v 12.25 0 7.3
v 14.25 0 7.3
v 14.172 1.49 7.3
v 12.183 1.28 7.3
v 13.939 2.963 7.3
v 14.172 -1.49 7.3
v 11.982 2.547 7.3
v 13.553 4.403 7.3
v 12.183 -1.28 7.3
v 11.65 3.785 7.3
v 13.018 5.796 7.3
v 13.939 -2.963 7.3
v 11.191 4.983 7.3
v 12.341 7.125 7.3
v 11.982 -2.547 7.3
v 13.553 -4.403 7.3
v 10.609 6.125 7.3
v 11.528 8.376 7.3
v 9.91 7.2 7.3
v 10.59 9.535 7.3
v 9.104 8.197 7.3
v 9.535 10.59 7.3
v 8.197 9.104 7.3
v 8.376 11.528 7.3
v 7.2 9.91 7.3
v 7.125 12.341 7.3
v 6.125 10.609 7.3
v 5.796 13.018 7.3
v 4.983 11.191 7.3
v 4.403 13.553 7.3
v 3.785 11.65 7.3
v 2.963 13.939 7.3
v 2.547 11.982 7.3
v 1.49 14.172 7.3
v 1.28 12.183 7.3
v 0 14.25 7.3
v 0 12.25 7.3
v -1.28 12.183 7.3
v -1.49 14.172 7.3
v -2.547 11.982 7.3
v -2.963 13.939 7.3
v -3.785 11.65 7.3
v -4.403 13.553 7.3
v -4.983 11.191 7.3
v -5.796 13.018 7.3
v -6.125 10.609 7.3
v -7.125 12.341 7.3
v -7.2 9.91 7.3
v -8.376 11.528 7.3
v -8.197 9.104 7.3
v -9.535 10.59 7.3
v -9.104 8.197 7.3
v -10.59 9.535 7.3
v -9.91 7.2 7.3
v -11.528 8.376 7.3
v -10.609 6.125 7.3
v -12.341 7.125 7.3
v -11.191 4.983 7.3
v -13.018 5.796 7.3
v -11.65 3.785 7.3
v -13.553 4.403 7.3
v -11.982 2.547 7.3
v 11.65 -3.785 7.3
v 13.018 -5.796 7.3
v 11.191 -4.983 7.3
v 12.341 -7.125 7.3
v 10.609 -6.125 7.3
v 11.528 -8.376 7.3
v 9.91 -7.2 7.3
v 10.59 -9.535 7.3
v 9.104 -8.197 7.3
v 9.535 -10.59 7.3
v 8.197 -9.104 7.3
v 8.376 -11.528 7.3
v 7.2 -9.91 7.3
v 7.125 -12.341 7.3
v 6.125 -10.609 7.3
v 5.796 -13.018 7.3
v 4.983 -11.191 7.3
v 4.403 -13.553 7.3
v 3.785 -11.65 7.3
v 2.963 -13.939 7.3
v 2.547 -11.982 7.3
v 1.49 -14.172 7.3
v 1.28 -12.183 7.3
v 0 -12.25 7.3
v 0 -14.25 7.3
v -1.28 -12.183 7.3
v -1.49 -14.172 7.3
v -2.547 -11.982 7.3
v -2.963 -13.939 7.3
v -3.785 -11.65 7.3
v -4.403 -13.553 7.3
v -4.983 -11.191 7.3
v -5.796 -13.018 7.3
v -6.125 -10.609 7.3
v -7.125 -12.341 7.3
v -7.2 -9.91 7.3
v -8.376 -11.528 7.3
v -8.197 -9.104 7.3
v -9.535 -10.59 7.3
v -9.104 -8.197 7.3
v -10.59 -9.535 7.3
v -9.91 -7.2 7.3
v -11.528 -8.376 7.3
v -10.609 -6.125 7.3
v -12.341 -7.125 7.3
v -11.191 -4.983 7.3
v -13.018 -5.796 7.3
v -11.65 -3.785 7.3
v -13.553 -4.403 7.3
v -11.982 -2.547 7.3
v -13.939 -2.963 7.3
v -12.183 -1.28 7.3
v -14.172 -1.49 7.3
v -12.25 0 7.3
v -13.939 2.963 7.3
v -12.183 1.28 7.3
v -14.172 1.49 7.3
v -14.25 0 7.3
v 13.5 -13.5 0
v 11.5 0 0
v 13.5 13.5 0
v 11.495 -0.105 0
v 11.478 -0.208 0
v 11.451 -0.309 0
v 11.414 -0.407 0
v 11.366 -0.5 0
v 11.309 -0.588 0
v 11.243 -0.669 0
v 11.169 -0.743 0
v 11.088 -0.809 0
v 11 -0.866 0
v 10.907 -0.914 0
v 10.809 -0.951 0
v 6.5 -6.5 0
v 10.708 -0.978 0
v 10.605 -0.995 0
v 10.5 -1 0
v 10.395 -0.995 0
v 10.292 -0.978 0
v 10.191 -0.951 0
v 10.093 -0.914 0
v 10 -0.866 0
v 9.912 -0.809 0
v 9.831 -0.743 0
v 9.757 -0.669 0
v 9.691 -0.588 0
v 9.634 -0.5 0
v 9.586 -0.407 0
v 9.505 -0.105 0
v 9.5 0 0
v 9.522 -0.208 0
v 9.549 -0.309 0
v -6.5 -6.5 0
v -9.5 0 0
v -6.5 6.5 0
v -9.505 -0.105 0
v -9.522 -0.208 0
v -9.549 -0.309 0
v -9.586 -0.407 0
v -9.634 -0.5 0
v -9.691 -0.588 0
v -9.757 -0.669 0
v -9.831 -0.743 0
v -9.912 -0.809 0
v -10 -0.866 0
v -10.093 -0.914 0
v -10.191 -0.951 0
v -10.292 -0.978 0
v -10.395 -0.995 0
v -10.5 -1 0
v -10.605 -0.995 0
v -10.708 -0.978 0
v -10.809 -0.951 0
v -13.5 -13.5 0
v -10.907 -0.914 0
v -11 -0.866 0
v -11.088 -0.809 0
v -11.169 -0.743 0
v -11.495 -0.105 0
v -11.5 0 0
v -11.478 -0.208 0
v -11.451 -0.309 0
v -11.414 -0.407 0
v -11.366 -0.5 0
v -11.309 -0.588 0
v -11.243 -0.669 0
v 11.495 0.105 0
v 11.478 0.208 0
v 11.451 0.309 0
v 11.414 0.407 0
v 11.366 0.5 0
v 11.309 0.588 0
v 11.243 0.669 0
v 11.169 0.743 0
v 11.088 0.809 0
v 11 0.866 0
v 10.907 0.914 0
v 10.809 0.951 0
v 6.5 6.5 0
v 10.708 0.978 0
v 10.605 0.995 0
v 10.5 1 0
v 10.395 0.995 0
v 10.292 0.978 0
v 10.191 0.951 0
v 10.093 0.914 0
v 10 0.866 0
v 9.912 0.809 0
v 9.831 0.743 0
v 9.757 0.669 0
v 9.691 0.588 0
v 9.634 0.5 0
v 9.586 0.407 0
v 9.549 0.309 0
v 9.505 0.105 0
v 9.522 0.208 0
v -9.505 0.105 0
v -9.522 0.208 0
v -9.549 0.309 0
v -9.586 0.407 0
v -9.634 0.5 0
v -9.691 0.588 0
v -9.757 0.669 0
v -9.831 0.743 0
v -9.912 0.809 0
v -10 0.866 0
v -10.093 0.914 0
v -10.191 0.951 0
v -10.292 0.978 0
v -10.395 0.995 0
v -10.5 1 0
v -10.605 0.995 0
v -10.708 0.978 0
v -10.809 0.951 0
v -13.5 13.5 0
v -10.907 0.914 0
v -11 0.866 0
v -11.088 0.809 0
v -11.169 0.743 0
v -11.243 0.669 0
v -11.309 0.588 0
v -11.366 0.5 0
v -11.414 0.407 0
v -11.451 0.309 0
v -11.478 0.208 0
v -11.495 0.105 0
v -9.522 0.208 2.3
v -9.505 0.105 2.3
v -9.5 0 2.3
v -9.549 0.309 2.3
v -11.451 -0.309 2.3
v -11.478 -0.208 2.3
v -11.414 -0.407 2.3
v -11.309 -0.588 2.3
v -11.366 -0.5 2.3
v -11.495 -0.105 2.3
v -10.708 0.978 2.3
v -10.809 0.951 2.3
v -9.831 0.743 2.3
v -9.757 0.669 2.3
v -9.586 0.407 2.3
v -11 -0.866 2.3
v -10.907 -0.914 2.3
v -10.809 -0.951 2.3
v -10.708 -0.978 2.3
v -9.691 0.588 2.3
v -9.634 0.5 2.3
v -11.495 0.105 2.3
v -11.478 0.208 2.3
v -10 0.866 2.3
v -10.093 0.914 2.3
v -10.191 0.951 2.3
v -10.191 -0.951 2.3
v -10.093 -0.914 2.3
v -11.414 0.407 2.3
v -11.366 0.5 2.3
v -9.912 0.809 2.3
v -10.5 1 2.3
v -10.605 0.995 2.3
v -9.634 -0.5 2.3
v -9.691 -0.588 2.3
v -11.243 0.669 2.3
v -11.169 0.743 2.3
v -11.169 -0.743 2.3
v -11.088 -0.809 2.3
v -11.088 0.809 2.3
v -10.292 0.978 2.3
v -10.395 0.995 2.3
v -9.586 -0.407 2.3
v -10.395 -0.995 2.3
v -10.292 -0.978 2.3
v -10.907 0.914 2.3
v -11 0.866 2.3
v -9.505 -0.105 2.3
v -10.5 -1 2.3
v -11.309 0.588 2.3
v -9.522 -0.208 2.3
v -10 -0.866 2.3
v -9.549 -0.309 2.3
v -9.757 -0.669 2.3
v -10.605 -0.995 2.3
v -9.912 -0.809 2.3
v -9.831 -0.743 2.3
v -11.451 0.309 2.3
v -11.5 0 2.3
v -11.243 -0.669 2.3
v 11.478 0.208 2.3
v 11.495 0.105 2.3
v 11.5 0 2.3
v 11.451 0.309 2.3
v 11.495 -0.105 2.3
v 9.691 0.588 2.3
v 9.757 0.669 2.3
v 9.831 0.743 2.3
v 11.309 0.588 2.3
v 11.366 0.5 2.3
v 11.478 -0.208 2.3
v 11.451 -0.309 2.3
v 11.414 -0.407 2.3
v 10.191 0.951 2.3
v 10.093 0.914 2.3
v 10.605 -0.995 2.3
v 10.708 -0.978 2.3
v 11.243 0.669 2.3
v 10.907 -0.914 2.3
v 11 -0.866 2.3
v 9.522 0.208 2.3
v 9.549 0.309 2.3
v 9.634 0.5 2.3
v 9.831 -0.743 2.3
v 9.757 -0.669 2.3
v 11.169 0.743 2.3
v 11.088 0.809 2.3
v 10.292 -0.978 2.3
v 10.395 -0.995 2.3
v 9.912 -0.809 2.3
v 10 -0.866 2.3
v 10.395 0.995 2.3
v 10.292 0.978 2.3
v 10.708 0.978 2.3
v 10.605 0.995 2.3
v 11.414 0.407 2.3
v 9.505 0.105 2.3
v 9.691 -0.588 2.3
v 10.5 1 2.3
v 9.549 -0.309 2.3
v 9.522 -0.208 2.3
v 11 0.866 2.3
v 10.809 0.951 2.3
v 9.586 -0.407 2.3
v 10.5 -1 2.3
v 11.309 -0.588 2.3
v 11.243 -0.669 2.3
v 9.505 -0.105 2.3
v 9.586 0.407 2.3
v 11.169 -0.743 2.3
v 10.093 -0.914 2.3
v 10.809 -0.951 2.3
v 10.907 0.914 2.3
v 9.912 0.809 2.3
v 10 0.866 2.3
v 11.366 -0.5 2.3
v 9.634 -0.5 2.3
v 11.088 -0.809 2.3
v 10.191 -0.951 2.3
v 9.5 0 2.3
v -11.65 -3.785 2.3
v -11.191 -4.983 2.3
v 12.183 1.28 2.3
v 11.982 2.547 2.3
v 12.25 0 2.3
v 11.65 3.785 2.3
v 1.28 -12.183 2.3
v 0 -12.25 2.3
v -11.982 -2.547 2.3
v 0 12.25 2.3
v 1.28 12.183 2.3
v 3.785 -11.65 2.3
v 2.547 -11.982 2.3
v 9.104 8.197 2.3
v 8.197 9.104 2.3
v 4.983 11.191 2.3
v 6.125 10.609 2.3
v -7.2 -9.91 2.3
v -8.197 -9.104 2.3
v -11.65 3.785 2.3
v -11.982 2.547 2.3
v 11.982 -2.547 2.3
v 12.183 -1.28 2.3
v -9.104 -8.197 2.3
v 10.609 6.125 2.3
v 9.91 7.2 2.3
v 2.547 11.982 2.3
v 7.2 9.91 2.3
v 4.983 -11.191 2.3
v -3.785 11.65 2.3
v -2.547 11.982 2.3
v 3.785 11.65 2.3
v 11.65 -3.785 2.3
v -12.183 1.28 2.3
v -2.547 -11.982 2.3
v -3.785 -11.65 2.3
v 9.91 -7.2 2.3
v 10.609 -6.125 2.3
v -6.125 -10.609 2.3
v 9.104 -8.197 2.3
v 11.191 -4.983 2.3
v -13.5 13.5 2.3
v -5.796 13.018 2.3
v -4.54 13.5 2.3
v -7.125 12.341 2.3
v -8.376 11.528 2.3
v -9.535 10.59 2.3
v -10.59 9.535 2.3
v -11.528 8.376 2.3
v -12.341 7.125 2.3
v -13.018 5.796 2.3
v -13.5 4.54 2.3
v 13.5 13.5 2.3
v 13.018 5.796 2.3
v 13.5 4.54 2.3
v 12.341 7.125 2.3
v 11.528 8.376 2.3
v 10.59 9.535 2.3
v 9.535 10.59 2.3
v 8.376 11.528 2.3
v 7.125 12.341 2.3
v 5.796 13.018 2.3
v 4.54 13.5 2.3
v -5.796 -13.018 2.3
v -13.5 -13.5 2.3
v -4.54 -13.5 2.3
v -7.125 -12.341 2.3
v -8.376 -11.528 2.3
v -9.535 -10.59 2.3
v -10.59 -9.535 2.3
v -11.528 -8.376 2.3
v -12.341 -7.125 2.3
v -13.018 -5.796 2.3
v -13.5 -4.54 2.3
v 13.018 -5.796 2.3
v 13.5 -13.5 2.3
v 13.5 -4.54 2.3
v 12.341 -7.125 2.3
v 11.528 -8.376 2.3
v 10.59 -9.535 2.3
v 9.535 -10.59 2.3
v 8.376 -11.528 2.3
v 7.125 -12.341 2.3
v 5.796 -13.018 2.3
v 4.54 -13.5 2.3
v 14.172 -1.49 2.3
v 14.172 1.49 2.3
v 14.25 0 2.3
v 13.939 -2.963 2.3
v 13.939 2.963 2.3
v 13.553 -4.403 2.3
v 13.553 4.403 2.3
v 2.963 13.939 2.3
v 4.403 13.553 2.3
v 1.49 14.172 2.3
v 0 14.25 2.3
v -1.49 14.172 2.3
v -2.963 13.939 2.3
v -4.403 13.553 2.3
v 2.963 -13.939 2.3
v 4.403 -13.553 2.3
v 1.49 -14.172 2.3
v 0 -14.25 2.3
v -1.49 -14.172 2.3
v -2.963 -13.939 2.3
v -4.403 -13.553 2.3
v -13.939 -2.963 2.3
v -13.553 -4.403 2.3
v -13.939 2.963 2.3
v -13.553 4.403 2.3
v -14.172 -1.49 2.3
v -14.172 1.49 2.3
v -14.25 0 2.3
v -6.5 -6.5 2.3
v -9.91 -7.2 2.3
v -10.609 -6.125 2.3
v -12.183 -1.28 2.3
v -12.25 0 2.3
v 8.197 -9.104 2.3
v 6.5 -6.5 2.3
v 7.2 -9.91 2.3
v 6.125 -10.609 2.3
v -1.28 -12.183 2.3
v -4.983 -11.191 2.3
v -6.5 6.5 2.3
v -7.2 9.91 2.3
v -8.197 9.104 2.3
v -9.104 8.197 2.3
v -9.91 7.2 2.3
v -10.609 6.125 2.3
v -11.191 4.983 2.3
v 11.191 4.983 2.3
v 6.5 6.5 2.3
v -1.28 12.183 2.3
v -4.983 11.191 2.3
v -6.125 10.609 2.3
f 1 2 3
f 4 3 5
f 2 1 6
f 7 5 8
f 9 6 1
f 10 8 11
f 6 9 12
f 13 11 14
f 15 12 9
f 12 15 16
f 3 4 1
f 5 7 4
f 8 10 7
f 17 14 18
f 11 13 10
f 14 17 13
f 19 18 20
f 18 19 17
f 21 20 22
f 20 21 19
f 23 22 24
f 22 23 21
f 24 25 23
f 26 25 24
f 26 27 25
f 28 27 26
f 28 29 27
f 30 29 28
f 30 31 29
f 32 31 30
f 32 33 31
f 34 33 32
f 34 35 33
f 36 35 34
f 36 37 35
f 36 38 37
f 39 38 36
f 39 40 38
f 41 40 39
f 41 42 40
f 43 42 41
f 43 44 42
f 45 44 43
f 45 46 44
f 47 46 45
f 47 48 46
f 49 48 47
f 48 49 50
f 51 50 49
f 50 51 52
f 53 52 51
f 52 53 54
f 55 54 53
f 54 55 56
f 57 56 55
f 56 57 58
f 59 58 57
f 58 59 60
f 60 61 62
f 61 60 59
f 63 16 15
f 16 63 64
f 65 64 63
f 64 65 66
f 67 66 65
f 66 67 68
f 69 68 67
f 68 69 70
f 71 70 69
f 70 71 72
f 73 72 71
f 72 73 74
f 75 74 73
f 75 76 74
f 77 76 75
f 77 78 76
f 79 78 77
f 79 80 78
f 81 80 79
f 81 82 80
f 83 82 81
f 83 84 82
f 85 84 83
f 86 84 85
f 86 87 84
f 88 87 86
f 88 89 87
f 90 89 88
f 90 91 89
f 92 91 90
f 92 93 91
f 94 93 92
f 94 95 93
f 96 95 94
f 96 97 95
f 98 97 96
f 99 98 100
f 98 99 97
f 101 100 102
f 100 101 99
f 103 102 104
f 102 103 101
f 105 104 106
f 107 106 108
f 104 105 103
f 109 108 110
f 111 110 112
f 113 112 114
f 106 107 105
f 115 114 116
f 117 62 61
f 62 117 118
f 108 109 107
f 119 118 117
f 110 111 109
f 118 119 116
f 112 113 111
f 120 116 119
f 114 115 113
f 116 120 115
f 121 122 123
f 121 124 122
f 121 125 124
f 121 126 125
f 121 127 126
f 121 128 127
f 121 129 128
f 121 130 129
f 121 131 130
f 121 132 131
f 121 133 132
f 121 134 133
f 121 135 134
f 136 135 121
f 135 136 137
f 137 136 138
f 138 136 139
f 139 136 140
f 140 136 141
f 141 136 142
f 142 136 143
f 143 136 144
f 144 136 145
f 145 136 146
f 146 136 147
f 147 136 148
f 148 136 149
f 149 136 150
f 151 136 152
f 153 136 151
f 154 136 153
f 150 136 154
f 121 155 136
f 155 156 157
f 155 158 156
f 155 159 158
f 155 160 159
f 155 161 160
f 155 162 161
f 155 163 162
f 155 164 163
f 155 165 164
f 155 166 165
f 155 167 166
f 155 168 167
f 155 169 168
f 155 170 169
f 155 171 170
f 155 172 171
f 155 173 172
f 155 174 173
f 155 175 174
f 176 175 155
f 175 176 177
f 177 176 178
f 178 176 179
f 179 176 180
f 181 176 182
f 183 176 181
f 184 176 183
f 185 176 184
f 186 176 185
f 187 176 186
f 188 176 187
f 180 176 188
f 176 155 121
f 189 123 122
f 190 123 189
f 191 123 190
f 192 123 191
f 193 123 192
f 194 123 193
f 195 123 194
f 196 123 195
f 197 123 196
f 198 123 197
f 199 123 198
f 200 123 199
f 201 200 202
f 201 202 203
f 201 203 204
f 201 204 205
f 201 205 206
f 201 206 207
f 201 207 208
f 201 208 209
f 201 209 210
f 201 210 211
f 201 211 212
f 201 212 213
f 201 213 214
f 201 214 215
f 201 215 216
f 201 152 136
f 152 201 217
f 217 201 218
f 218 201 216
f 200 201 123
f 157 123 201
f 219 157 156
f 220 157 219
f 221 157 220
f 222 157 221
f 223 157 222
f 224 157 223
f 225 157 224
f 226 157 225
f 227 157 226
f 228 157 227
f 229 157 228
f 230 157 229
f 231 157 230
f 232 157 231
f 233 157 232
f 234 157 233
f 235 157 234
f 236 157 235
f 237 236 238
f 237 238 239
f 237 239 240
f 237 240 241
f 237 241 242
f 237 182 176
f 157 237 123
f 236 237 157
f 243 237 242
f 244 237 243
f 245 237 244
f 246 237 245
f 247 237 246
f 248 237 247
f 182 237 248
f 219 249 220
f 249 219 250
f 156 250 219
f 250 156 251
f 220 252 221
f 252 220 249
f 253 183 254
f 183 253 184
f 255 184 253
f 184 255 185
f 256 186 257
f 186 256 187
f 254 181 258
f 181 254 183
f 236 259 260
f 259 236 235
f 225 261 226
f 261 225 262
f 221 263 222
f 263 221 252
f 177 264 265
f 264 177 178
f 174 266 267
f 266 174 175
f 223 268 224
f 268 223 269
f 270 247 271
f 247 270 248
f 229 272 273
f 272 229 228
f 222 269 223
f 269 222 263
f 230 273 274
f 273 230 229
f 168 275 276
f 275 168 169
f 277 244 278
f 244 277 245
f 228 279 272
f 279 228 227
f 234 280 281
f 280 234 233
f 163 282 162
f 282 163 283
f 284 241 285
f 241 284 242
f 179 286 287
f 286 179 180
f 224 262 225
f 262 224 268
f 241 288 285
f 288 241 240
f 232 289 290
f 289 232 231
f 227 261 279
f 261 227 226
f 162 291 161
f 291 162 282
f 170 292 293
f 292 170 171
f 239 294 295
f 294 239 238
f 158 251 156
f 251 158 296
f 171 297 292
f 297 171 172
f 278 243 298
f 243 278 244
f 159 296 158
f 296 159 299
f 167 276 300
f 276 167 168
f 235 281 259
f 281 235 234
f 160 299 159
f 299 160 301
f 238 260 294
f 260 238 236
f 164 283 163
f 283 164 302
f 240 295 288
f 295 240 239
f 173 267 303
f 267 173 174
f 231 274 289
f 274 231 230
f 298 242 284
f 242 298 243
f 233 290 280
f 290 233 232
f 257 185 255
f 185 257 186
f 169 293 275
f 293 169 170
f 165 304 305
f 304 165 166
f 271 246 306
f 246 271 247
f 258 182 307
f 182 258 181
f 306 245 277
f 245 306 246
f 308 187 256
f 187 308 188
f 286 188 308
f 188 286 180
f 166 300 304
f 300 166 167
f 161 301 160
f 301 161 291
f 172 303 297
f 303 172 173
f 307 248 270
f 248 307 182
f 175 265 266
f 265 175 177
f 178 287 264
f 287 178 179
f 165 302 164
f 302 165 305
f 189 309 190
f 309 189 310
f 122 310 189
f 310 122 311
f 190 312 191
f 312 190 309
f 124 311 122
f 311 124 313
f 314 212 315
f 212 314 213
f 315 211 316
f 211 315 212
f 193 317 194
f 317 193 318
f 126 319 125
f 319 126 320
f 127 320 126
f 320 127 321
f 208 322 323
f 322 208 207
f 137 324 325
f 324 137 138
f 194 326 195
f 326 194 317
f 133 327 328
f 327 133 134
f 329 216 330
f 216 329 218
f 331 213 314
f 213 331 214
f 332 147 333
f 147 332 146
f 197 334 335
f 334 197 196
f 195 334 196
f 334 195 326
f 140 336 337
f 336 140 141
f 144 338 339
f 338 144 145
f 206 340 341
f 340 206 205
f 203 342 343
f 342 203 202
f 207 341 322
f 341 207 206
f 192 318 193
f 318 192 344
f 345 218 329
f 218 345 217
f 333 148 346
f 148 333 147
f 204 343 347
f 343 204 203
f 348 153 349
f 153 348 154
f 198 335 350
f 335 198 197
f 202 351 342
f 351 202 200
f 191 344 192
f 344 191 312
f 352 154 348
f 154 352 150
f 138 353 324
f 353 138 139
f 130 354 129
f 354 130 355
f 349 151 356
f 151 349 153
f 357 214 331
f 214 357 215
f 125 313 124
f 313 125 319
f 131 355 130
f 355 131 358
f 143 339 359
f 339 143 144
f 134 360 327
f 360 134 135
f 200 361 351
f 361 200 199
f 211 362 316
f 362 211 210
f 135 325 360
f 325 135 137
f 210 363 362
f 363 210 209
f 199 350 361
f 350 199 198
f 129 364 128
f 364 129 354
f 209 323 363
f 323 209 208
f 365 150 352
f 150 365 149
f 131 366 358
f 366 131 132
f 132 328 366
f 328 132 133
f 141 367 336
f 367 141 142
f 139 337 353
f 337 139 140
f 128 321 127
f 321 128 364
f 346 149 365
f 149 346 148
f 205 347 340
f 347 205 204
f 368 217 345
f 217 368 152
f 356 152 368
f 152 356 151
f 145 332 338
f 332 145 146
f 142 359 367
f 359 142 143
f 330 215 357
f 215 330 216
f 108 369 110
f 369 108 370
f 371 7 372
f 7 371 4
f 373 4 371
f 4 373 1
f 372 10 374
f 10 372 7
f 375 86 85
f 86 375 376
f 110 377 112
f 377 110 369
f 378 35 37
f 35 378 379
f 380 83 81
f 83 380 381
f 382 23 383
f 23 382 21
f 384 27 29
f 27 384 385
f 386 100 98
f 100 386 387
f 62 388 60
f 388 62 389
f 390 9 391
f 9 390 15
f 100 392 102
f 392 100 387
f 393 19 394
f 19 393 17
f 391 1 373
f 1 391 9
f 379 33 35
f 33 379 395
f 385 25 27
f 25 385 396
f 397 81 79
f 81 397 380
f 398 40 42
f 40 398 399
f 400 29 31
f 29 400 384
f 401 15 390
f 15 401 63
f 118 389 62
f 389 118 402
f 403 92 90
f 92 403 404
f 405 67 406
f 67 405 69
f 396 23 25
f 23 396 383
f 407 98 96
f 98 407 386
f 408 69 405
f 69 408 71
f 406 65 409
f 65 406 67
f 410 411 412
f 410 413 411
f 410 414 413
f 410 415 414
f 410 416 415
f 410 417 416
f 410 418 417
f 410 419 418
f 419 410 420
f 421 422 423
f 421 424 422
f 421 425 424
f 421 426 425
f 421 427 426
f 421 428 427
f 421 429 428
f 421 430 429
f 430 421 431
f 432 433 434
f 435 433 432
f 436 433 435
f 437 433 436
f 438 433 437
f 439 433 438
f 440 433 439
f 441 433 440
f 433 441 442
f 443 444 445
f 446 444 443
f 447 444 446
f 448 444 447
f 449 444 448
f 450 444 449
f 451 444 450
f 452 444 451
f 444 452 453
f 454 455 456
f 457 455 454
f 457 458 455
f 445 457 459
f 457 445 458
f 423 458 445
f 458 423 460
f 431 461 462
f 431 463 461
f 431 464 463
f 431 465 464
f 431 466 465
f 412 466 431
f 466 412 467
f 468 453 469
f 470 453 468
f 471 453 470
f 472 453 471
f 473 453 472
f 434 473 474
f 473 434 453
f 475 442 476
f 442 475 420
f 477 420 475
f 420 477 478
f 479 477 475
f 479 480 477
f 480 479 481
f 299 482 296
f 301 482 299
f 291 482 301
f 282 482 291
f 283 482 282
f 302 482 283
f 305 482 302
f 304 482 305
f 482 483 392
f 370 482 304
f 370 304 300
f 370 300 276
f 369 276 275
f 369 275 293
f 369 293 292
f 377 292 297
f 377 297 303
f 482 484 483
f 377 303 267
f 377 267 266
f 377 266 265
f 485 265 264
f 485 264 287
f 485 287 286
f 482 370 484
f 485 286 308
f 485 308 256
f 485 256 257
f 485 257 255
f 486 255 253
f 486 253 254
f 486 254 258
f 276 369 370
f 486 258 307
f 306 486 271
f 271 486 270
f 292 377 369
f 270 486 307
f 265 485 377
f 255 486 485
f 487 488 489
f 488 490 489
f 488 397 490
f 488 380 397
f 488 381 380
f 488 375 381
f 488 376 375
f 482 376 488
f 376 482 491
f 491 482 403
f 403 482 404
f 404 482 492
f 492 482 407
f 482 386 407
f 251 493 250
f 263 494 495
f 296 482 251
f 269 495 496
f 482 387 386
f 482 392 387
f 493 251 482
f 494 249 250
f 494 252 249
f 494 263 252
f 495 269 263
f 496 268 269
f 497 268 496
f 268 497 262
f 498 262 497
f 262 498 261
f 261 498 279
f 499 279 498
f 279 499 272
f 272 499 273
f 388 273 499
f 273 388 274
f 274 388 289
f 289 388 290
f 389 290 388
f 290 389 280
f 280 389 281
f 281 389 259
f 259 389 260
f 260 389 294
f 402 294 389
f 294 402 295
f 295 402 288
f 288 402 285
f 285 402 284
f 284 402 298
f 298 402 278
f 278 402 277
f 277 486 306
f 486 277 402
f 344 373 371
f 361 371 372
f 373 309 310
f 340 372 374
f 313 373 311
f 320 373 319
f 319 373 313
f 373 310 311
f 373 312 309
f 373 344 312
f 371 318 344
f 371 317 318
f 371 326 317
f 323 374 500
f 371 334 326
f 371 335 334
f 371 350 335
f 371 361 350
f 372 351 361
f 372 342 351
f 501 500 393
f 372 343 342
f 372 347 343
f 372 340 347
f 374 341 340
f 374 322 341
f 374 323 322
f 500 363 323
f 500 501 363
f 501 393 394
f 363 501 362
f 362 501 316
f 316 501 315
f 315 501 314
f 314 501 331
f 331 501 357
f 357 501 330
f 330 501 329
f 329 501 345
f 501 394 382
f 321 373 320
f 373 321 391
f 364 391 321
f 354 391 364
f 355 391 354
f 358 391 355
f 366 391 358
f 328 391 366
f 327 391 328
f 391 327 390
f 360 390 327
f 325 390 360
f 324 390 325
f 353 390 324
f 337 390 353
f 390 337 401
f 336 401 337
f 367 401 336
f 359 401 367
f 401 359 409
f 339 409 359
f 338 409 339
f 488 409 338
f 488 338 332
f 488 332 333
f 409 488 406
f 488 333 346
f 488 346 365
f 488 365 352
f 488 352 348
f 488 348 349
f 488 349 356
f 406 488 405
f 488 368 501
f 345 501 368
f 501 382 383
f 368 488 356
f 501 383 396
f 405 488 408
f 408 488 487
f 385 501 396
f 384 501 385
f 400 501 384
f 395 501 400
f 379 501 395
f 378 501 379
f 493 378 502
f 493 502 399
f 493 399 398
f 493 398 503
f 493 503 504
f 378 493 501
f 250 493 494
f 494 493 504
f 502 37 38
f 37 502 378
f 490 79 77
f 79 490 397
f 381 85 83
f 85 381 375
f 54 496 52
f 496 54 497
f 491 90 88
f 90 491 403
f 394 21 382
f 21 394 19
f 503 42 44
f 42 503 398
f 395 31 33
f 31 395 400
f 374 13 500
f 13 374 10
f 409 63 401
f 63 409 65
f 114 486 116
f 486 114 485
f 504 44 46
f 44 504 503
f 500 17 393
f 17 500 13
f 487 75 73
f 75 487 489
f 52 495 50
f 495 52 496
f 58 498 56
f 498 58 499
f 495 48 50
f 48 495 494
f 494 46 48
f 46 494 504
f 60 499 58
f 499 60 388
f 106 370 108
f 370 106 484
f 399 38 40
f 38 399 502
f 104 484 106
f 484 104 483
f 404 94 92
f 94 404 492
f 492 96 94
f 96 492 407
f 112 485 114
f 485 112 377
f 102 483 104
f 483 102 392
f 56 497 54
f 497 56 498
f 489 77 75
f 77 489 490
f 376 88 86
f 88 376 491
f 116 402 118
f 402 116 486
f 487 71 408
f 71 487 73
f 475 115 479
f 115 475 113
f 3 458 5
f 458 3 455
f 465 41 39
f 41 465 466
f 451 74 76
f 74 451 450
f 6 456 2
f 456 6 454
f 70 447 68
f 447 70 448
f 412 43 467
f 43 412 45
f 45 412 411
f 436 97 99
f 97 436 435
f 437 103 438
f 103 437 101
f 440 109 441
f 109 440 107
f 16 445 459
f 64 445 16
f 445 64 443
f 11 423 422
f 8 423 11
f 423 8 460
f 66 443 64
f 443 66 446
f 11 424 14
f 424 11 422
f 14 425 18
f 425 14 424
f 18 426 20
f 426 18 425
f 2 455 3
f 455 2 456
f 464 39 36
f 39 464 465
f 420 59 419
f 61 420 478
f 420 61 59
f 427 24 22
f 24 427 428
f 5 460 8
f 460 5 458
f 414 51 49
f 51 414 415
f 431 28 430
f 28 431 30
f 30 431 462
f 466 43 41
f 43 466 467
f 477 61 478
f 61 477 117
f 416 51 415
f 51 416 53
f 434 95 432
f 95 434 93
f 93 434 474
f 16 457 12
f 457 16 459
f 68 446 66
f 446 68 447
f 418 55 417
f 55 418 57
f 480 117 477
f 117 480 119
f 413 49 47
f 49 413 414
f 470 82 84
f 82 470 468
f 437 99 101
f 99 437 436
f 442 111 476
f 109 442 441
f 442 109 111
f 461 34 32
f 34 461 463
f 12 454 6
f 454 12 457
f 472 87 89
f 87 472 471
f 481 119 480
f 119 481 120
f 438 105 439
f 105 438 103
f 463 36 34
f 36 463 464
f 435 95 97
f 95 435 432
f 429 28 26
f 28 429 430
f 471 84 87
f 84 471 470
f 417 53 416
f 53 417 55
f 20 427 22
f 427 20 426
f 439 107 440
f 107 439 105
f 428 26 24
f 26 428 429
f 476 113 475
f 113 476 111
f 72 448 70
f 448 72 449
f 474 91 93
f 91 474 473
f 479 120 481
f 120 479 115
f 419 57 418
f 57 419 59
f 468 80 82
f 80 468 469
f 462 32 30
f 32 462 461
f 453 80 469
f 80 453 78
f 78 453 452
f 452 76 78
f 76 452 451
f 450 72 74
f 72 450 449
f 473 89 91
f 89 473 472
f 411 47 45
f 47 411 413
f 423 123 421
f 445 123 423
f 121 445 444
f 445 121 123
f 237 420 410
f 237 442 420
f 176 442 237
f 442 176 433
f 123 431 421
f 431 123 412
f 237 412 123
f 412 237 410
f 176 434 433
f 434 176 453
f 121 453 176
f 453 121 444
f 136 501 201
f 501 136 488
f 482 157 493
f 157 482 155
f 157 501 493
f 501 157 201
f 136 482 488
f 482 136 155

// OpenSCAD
/**
Run get_deps.sh to clone dependencies into a linked folder in your home directory.

This is actually for the EPC660 Carrier board.

Print with thick walls for tapping.
*/

use <deps.link/BOSL/nema_steppers.scad>
use <deps.link/BOSL/joiners.scad>
use <deps.link/BOSL/shapes.scad>
use <deps.link/erhannisScad/misc.scad>
use <deps.link/erhannisScad/auto_lid.scad>
use <deps.link/scadFluidics/common.scad>
use <deps.link/quickfitPlate/blank_plate.scad>
use <deps.link/getriebe/Getriebe.scad>
use <deps.link/gearbox/gearbox.scad>

$FOREVER = 1000;
DUMMY = false;
$fn = DUMMY ? 10 : 60;

S_MOUNT_ID = 11.8;
C_MOUNT_ID = 24.5;
MOUNT_ID = C_MOUNT_ID;

HOLE_DX = 21;

SCREW_D = 2;
SCREW_SZ = 4-1.7;
LENS_DEPTH = 5;

H1P = [-HOLE_DX/2, 0];
H2P = [HOLE_DX/2, 0];
HPs = [H1P, H2P];
LP = [0,0];

SENSOR_SQUARE_EDGE = 13;

WT = 2;
H = SCREW_SZ+LENS_DEPTH;

module parts(holes=false) {
    union() {
        for (hp = HPs) {
            echo(hp);
            if (holes) {
                translate(hp) cylinder(d=SCREW_D,h=$FOREVER,center=true);
            } else {
                translate(hp) cylinder(d=SCREW_D+2*WT,h=H);
            }
        }
        
        echo(LP);
        tz(SCREW_SZ) if (holes) {
            translate(LP) cylinder(d=MOUNT_ID,h=$FOREVER);
        } else {
            translate(LP) cylinder(d=MOUNT_ID+2*WT,h=LENS_DEPTH);
        }
    }
}

//    translate([lp[0], lp[1], 0]) cylinder(d=S_MOUNT_ID+2*WT,);


my() translate(-LP) !difference() {
    union() {
        difference() {
            tz(SCREW_SZ/2) cube([HOLE_DX+(SCREW_D+2*WT),HOLE_DX+(SCREW_D+2*WT),SCREW_SZ], center=true);
            cube([SENSOR_SQUARE_EDGE,SENSOR_SQUARE_EDGE,$FOREVER], center=true);
        }
        parts(holes=false);
        *tz(SCREW_SZ) linear_extrude(height=LENS_DEPTH) hull() projection() {
            parts(holes=false);
        }
    }
    parts(holes=true);
}
